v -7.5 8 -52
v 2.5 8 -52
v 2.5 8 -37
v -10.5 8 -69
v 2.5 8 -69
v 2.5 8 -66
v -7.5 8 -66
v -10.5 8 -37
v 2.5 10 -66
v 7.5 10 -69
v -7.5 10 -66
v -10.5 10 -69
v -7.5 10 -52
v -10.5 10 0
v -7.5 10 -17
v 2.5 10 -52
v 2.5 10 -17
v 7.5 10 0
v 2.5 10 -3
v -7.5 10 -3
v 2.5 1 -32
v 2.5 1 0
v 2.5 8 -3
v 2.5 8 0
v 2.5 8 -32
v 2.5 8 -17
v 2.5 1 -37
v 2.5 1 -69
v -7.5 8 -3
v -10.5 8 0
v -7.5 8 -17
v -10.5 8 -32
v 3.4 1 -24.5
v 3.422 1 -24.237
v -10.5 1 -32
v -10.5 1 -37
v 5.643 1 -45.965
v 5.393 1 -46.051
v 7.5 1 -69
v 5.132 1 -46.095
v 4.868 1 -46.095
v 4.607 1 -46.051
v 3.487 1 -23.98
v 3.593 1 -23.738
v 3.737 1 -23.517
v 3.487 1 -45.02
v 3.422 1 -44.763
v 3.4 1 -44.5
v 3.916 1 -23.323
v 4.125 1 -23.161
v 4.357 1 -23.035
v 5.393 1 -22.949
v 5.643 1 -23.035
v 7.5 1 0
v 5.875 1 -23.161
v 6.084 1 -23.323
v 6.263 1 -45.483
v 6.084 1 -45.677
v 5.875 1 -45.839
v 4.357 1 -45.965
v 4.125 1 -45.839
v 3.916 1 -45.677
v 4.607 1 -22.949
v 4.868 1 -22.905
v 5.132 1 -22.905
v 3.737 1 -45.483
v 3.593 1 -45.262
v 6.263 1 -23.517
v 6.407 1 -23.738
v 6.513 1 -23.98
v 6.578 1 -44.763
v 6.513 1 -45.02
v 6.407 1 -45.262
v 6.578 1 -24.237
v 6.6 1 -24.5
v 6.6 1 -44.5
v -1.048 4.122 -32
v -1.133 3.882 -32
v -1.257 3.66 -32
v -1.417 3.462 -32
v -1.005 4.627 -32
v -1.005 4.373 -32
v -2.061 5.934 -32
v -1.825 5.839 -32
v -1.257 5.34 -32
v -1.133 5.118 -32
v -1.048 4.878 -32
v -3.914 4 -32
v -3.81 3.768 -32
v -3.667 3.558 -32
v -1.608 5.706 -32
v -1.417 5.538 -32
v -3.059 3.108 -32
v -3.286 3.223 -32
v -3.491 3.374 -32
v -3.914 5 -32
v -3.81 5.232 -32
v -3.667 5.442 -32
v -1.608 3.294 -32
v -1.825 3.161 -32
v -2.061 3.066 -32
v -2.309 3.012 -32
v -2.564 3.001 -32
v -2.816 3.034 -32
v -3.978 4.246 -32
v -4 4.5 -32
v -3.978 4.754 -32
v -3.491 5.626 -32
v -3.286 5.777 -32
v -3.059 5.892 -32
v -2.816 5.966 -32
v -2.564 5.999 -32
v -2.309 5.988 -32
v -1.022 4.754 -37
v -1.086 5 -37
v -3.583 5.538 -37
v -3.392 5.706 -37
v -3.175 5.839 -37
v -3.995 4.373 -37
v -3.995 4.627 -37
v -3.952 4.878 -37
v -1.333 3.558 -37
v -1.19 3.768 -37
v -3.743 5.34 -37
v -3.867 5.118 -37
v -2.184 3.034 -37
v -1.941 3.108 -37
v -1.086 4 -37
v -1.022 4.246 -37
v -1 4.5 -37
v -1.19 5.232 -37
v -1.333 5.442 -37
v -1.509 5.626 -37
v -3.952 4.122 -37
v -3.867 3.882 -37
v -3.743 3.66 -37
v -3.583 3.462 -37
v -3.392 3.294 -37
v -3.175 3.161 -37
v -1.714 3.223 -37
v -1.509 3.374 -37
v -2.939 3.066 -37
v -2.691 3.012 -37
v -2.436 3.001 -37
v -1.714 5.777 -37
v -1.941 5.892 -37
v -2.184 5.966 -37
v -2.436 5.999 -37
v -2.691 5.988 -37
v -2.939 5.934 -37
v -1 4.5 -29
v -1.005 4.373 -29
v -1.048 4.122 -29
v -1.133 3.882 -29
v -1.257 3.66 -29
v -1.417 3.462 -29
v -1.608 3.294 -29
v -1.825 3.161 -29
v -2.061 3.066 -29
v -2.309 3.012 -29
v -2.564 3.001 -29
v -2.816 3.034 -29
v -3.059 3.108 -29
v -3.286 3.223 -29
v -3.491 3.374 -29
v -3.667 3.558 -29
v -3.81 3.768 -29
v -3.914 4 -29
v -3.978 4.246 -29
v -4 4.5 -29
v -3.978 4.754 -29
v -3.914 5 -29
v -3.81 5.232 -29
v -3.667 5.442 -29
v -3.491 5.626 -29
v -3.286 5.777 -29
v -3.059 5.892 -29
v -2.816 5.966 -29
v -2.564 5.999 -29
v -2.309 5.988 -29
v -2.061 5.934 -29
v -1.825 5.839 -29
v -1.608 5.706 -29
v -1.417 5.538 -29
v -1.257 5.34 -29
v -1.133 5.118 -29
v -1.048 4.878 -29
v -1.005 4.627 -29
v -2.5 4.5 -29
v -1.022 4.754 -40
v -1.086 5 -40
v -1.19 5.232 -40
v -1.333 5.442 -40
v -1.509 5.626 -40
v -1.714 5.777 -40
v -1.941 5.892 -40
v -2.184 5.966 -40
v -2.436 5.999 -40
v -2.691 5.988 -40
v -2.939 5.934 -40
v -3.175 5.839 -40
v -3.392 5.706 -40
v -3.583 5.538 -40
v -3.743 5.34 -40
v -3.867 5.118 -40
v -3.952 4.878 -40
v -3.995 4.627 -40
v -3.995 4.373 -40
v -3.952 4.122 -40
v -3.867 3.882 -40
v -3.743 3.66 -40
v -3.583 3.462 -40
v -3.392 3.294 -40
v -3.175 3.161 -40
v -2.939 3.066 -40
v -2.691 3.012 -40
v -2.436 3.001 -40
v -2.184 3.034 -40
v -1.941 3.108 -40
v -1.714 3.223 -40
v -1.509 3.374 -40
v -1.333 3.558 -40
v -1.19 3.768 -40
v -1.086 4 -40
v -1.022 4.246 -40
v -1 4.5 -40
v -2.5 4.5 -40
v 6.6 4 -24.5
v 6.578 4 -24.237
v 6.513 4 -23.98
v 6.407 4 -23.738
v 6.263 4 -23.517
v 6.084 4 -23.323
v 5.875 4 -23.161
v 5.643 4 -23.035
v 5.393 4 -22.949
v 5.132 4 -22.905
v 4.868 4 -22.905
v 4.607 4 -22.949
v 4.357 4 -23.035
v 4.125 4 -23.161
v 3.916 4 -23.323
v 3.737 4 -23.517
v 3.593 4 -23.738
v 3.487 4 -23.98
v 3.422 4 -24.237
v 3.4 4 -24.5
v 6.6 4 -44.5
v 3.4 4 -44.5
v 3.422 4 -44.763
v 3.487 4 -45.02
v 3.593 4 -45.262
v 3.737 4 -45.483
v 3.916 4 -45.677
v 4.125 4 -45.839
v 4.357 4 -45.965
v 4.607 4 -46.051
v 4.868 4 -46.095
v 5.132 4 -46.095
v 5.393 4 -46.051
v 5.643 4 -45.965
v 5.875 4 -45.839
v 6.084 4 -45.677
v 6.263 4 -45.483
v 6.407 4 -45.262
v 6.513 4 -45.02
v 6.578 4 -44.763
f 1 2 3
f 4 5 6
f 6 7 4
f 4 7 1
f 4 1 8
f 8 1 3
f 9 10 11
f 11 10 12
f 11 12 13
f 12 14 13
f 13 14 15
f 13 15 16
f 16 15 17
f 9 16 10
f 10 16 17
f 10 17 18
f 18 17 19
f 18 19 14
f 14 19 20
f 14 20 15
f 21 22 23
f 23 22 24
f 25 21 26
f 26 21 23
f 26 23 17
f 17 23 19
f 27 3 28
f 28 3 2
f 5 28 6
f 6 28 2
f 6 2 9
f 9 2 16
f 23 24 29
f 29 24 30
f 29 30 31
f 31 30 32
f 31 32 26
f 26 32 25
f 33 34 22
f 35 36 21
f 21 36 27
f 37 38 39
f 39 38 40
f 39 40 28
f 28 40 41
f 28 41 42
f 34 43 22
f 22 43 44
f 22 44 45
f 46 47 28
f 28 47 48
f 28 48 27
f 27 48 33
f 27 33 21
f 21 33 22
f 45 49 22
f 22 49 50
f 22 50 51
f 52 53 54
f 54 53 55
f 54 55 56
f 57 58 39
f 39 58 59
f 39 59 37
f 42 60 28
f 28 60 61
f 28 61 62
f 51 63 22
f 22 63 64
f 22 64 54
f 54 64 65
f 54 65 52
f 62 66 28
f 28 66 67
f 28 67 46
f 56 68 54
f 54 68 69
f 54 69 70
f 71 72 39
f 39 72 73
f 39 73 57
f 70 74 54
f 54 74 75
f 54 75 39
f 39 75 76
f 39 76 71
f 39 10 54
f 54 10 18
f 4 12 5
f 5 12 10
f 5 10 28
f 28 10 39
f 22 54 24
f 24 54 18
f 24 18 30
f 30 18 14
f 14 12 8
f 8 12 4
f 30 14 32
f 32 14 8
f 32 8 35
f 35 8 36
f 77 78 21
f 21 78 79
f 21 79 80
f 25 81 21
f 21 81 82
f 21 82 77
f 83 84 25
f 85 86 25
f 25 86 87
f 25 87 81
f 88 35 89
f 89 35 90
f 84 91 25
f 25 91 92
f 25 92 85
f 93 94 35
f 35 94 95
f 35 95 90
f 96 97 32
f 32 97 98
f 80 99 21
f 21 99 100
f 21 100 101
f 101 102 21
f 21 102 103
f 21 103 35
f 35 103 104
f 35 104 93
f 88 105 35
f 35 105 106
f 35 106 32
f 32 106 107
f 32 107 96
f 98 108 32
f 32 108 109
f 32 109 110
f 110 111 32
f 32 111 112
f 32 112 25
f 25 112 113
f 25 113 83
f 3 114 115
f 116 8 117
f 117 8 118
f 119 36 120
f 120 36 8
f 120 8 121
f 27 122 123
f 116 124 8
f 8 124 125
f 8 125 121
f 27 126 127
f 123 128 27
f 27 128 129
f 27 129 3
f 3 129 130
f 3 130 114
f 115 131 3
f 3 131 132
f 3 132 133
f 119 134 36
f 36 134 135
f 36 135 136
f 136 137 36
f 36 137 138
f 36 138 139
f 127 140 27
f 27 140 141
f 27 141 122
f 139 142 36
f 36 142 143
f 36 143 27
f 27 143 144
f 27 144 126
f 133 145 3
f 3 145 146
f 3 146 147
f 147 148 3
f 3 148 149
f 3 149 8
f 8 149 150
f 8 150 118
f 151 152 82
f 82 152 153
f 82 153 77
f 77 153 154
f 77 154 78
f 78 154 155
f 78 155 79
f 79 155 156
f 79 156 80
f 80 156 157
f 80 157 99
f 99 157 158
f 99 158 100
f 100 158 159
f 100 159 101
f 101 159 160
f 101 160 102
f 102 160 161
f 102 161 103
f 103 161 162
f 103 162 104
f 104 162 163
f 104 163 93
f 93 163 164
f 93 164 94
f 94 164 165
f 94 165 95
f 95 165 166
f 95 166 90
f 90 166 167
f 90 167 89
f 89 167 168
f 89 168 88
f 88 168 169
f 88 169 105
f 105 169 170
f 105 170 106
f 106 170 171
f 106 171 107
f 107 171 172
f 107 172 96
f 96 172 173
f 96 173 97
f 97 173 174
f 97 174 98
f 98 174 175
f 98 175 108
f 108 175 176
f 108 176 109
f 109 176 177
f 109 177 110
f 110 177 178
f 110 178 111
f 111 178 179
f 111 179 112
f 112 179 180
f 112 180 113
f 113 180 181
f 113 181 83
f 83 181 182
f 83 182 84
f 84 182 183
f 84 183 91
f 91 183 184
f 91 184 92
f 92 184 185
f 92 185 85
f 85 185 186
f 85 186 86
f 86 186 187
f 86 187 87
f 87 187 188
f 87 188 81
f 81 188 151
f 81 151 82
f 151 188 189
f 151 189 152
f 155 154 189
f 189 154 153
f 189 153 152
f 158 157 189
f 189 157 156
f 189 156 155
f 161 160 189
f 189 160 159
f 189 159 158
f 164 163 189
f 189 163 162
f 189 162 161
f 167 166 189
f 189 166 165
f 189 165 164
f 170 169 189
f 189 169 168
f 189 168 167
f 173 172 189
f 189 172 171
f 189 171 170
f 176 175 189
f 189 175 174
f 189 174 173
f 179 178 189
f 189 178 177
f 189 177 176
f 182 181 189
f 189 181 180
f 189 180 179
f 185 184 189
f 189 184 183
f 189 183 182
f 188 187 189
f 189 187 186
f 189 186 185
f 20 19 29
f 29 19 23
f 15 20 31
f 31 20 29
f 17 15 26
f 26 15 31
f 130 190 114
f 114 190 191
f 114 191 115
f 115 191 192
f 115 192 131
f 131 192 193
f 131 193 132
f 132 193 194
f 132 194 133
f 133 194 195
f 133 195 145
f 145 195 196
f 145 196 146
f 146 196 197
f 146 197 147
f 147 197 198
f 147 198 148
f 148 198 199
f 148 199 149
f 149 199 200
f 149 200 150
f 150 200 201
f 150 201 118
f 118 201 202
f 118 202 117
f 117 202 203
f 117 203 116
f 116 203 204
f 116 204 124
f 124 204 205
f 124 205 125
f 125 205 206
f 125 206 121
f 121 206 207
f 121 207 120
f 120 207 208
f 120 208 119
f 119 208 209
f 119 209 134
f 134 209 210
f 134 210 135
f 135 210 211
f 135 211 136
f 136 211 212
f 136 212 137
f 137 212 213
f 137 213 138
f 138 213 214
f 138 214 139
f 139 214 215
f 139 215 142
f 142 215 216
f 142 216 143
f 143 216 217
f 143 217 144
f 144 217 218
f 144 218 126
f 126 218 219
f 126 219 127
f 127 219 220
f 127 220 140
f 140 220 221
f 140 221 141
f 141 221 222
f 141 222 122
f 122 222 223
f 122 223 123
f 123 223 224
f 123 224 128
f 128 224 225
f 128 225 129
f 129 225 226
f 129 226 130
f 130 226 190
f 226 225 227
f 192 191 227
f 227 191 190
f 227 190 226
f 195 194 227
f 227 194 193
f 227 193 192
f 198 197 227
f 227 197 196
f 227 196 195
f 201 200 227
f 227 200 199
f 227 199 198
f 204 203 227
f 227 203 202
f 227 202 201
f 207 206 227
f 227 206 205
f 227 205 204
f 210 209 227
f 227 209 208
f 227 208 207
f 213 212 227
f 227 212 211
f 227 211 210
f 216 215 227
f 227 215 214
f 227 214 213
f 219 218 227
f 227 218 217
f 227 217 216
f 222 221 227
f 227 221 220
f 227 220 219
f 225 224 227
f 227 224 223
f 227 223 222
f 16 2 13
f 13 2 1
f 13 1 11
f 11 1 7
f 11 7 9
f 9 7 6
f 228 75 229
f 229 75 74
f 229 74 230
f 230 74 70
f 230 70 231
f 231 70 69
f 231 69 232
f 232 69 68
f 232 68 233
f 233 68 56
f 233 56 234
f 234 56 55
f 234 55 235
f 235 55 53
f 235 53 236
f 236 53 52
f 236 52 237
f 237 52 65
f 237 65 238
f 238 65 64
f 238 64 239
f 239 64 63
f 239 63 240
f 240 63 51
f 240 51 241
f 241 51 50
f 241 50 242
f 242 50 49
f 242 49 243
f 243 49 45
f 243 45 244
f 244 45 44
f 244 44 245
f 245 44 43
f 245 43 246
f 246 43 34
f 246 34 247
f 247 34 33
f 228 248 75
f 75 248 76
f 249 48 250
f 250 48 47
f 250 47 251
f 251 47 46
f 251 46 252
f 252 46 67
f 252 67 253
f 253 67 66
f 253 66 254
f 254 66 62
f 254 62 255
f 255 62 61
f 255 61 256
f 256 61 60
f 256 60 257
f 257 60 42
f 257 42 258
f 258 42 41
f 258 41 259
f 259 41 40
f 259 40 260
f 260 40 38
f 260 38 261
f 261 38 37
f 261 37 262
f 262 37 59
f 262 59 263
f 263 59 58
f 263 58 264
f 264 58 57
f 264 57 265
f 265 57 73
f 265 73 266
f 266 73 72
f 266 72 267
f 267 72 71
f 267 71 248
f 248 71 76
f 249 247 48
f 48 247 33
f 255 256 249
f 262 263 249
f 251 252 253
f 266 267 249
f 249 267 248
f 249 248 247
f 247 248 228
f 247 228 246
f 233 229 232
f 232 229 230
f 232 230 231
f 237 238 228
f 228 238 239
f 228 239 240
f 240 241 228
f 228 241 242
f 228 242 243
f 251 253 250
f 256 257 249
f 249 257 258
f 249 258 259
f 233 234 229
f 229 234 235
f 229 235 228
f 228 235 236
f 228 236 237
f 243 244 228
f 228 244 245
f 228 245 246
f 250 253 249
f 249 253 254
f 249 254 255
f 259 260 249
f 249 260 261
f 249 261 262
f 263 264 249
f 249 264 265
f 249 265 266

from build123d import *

# Parameters (mm, degrees)
BOSS_EXTRUDE1_DEPTH = 69
SKETCH2_W           = 69
SKETCH2_H           = 2
BOSS_EXTRUDE2_DEPTH = 3
SKETCH3_W           = 5
SKETCH3_H           = 7
BOSS_EXTRUDE4_DEPTH = 13
SKETCH5_R           = 1.5
BOSS_EXTRUDE5_DEPTH = 3
SKETCH8_W           = 10
SKETCH8_H           = 14
CUT_EXTRUDE1_DEPTH  = 71.372224634
CUT_EXTRUDE2_DEPTH  = 3


with BuildPart() as part:
    # Sketch1 → Boss-Extrude1 (new body)
    with BuildSketch(Plane.XY):
        Polygon((2.5, 1), (2.5, 8), (-7.5, 8), (-7.5, 10), (7.5, 10), (7.5, 1), align=None)
    extrude(amount=-BOSS_EXTRUDE1_DEPTH)

    # Sketch2 → Boss-Extrude2 (add)
    with BuildSketch(Plane.ZY.offset(7.5)):
        with Locations((-34.5, 9)):
            Rectangle(SKETCH2_W, SKETCH2_H)
    extrude(amount=BOSS_EXTRUDE2_DEPTH)

    # Sketch3 → Boss-Extrude4 (add)
    with BuildSketch(Plane.ZY.offset(-2.5)):
        with Locations((-34.5, 4.5)):
            Rectangle(SKETCH3_W, SKETCH3_H)
    extrude(amount=BOSS_EXTRUDE4_DEPTH)

    # Sketch5 → Boss-Extrude5 (add)
    with BuildSketch(Plane.XY.offset(-32)):
        with Locations(Location((-2.5, 4.5, 0), (0, 0, 180))):
            Circle(SKETCH5_R)
    boss_extrude5 = extrude(amount=BOSS_EXTRUDE5_DEPTH)

    # Sketch8 → Cut-Extrude1 (cut, through all)
    with BuildSketch(Plane(origin=(0, 10, 0), x_dir=(1, 0, 0), z_dir=(0, 1, 0))):
        with Locations((-2.5, 10)):
            Rectangle(SKETCH8_W, SKETCH8_H)
    cut_extrude1 = extrude(amount=-CUT_EXTRUDE1_DEPTH, mode=Mode.SUBTRACT)

    # Mirror1: Boss-Extrude5, Cut-Extrude1 across plane
    add(boss_extrude5.mirror(Plane.XY.offset(-34.5)))
    add(cut_extrude1.mirror(Plane.XY.offset(-34.5)), mode=Mode.SUBTRACT)

    # Sketch9 → Cut-Extrude2 (cut)
    with BuildSketch(Plane.XZ.offset(-1)):
        with BuildLine():
            Line((6.6, -24.5), (6.6, -44.5))
            ThreePointArc((6.6, -44.5), (5, -46.1), (3.4, -44.5))
            Line((3.4, -44.5), (3.4, -24.5))
            ThreePointArc((3.4, -24.5), (5, -22.9), (6.6, -24.5))
        make_face()
    extrude(amount=-CUT_EXTRUDE2_DEPTH, mode=Mode.SUBTRACT)


solid = part.part
